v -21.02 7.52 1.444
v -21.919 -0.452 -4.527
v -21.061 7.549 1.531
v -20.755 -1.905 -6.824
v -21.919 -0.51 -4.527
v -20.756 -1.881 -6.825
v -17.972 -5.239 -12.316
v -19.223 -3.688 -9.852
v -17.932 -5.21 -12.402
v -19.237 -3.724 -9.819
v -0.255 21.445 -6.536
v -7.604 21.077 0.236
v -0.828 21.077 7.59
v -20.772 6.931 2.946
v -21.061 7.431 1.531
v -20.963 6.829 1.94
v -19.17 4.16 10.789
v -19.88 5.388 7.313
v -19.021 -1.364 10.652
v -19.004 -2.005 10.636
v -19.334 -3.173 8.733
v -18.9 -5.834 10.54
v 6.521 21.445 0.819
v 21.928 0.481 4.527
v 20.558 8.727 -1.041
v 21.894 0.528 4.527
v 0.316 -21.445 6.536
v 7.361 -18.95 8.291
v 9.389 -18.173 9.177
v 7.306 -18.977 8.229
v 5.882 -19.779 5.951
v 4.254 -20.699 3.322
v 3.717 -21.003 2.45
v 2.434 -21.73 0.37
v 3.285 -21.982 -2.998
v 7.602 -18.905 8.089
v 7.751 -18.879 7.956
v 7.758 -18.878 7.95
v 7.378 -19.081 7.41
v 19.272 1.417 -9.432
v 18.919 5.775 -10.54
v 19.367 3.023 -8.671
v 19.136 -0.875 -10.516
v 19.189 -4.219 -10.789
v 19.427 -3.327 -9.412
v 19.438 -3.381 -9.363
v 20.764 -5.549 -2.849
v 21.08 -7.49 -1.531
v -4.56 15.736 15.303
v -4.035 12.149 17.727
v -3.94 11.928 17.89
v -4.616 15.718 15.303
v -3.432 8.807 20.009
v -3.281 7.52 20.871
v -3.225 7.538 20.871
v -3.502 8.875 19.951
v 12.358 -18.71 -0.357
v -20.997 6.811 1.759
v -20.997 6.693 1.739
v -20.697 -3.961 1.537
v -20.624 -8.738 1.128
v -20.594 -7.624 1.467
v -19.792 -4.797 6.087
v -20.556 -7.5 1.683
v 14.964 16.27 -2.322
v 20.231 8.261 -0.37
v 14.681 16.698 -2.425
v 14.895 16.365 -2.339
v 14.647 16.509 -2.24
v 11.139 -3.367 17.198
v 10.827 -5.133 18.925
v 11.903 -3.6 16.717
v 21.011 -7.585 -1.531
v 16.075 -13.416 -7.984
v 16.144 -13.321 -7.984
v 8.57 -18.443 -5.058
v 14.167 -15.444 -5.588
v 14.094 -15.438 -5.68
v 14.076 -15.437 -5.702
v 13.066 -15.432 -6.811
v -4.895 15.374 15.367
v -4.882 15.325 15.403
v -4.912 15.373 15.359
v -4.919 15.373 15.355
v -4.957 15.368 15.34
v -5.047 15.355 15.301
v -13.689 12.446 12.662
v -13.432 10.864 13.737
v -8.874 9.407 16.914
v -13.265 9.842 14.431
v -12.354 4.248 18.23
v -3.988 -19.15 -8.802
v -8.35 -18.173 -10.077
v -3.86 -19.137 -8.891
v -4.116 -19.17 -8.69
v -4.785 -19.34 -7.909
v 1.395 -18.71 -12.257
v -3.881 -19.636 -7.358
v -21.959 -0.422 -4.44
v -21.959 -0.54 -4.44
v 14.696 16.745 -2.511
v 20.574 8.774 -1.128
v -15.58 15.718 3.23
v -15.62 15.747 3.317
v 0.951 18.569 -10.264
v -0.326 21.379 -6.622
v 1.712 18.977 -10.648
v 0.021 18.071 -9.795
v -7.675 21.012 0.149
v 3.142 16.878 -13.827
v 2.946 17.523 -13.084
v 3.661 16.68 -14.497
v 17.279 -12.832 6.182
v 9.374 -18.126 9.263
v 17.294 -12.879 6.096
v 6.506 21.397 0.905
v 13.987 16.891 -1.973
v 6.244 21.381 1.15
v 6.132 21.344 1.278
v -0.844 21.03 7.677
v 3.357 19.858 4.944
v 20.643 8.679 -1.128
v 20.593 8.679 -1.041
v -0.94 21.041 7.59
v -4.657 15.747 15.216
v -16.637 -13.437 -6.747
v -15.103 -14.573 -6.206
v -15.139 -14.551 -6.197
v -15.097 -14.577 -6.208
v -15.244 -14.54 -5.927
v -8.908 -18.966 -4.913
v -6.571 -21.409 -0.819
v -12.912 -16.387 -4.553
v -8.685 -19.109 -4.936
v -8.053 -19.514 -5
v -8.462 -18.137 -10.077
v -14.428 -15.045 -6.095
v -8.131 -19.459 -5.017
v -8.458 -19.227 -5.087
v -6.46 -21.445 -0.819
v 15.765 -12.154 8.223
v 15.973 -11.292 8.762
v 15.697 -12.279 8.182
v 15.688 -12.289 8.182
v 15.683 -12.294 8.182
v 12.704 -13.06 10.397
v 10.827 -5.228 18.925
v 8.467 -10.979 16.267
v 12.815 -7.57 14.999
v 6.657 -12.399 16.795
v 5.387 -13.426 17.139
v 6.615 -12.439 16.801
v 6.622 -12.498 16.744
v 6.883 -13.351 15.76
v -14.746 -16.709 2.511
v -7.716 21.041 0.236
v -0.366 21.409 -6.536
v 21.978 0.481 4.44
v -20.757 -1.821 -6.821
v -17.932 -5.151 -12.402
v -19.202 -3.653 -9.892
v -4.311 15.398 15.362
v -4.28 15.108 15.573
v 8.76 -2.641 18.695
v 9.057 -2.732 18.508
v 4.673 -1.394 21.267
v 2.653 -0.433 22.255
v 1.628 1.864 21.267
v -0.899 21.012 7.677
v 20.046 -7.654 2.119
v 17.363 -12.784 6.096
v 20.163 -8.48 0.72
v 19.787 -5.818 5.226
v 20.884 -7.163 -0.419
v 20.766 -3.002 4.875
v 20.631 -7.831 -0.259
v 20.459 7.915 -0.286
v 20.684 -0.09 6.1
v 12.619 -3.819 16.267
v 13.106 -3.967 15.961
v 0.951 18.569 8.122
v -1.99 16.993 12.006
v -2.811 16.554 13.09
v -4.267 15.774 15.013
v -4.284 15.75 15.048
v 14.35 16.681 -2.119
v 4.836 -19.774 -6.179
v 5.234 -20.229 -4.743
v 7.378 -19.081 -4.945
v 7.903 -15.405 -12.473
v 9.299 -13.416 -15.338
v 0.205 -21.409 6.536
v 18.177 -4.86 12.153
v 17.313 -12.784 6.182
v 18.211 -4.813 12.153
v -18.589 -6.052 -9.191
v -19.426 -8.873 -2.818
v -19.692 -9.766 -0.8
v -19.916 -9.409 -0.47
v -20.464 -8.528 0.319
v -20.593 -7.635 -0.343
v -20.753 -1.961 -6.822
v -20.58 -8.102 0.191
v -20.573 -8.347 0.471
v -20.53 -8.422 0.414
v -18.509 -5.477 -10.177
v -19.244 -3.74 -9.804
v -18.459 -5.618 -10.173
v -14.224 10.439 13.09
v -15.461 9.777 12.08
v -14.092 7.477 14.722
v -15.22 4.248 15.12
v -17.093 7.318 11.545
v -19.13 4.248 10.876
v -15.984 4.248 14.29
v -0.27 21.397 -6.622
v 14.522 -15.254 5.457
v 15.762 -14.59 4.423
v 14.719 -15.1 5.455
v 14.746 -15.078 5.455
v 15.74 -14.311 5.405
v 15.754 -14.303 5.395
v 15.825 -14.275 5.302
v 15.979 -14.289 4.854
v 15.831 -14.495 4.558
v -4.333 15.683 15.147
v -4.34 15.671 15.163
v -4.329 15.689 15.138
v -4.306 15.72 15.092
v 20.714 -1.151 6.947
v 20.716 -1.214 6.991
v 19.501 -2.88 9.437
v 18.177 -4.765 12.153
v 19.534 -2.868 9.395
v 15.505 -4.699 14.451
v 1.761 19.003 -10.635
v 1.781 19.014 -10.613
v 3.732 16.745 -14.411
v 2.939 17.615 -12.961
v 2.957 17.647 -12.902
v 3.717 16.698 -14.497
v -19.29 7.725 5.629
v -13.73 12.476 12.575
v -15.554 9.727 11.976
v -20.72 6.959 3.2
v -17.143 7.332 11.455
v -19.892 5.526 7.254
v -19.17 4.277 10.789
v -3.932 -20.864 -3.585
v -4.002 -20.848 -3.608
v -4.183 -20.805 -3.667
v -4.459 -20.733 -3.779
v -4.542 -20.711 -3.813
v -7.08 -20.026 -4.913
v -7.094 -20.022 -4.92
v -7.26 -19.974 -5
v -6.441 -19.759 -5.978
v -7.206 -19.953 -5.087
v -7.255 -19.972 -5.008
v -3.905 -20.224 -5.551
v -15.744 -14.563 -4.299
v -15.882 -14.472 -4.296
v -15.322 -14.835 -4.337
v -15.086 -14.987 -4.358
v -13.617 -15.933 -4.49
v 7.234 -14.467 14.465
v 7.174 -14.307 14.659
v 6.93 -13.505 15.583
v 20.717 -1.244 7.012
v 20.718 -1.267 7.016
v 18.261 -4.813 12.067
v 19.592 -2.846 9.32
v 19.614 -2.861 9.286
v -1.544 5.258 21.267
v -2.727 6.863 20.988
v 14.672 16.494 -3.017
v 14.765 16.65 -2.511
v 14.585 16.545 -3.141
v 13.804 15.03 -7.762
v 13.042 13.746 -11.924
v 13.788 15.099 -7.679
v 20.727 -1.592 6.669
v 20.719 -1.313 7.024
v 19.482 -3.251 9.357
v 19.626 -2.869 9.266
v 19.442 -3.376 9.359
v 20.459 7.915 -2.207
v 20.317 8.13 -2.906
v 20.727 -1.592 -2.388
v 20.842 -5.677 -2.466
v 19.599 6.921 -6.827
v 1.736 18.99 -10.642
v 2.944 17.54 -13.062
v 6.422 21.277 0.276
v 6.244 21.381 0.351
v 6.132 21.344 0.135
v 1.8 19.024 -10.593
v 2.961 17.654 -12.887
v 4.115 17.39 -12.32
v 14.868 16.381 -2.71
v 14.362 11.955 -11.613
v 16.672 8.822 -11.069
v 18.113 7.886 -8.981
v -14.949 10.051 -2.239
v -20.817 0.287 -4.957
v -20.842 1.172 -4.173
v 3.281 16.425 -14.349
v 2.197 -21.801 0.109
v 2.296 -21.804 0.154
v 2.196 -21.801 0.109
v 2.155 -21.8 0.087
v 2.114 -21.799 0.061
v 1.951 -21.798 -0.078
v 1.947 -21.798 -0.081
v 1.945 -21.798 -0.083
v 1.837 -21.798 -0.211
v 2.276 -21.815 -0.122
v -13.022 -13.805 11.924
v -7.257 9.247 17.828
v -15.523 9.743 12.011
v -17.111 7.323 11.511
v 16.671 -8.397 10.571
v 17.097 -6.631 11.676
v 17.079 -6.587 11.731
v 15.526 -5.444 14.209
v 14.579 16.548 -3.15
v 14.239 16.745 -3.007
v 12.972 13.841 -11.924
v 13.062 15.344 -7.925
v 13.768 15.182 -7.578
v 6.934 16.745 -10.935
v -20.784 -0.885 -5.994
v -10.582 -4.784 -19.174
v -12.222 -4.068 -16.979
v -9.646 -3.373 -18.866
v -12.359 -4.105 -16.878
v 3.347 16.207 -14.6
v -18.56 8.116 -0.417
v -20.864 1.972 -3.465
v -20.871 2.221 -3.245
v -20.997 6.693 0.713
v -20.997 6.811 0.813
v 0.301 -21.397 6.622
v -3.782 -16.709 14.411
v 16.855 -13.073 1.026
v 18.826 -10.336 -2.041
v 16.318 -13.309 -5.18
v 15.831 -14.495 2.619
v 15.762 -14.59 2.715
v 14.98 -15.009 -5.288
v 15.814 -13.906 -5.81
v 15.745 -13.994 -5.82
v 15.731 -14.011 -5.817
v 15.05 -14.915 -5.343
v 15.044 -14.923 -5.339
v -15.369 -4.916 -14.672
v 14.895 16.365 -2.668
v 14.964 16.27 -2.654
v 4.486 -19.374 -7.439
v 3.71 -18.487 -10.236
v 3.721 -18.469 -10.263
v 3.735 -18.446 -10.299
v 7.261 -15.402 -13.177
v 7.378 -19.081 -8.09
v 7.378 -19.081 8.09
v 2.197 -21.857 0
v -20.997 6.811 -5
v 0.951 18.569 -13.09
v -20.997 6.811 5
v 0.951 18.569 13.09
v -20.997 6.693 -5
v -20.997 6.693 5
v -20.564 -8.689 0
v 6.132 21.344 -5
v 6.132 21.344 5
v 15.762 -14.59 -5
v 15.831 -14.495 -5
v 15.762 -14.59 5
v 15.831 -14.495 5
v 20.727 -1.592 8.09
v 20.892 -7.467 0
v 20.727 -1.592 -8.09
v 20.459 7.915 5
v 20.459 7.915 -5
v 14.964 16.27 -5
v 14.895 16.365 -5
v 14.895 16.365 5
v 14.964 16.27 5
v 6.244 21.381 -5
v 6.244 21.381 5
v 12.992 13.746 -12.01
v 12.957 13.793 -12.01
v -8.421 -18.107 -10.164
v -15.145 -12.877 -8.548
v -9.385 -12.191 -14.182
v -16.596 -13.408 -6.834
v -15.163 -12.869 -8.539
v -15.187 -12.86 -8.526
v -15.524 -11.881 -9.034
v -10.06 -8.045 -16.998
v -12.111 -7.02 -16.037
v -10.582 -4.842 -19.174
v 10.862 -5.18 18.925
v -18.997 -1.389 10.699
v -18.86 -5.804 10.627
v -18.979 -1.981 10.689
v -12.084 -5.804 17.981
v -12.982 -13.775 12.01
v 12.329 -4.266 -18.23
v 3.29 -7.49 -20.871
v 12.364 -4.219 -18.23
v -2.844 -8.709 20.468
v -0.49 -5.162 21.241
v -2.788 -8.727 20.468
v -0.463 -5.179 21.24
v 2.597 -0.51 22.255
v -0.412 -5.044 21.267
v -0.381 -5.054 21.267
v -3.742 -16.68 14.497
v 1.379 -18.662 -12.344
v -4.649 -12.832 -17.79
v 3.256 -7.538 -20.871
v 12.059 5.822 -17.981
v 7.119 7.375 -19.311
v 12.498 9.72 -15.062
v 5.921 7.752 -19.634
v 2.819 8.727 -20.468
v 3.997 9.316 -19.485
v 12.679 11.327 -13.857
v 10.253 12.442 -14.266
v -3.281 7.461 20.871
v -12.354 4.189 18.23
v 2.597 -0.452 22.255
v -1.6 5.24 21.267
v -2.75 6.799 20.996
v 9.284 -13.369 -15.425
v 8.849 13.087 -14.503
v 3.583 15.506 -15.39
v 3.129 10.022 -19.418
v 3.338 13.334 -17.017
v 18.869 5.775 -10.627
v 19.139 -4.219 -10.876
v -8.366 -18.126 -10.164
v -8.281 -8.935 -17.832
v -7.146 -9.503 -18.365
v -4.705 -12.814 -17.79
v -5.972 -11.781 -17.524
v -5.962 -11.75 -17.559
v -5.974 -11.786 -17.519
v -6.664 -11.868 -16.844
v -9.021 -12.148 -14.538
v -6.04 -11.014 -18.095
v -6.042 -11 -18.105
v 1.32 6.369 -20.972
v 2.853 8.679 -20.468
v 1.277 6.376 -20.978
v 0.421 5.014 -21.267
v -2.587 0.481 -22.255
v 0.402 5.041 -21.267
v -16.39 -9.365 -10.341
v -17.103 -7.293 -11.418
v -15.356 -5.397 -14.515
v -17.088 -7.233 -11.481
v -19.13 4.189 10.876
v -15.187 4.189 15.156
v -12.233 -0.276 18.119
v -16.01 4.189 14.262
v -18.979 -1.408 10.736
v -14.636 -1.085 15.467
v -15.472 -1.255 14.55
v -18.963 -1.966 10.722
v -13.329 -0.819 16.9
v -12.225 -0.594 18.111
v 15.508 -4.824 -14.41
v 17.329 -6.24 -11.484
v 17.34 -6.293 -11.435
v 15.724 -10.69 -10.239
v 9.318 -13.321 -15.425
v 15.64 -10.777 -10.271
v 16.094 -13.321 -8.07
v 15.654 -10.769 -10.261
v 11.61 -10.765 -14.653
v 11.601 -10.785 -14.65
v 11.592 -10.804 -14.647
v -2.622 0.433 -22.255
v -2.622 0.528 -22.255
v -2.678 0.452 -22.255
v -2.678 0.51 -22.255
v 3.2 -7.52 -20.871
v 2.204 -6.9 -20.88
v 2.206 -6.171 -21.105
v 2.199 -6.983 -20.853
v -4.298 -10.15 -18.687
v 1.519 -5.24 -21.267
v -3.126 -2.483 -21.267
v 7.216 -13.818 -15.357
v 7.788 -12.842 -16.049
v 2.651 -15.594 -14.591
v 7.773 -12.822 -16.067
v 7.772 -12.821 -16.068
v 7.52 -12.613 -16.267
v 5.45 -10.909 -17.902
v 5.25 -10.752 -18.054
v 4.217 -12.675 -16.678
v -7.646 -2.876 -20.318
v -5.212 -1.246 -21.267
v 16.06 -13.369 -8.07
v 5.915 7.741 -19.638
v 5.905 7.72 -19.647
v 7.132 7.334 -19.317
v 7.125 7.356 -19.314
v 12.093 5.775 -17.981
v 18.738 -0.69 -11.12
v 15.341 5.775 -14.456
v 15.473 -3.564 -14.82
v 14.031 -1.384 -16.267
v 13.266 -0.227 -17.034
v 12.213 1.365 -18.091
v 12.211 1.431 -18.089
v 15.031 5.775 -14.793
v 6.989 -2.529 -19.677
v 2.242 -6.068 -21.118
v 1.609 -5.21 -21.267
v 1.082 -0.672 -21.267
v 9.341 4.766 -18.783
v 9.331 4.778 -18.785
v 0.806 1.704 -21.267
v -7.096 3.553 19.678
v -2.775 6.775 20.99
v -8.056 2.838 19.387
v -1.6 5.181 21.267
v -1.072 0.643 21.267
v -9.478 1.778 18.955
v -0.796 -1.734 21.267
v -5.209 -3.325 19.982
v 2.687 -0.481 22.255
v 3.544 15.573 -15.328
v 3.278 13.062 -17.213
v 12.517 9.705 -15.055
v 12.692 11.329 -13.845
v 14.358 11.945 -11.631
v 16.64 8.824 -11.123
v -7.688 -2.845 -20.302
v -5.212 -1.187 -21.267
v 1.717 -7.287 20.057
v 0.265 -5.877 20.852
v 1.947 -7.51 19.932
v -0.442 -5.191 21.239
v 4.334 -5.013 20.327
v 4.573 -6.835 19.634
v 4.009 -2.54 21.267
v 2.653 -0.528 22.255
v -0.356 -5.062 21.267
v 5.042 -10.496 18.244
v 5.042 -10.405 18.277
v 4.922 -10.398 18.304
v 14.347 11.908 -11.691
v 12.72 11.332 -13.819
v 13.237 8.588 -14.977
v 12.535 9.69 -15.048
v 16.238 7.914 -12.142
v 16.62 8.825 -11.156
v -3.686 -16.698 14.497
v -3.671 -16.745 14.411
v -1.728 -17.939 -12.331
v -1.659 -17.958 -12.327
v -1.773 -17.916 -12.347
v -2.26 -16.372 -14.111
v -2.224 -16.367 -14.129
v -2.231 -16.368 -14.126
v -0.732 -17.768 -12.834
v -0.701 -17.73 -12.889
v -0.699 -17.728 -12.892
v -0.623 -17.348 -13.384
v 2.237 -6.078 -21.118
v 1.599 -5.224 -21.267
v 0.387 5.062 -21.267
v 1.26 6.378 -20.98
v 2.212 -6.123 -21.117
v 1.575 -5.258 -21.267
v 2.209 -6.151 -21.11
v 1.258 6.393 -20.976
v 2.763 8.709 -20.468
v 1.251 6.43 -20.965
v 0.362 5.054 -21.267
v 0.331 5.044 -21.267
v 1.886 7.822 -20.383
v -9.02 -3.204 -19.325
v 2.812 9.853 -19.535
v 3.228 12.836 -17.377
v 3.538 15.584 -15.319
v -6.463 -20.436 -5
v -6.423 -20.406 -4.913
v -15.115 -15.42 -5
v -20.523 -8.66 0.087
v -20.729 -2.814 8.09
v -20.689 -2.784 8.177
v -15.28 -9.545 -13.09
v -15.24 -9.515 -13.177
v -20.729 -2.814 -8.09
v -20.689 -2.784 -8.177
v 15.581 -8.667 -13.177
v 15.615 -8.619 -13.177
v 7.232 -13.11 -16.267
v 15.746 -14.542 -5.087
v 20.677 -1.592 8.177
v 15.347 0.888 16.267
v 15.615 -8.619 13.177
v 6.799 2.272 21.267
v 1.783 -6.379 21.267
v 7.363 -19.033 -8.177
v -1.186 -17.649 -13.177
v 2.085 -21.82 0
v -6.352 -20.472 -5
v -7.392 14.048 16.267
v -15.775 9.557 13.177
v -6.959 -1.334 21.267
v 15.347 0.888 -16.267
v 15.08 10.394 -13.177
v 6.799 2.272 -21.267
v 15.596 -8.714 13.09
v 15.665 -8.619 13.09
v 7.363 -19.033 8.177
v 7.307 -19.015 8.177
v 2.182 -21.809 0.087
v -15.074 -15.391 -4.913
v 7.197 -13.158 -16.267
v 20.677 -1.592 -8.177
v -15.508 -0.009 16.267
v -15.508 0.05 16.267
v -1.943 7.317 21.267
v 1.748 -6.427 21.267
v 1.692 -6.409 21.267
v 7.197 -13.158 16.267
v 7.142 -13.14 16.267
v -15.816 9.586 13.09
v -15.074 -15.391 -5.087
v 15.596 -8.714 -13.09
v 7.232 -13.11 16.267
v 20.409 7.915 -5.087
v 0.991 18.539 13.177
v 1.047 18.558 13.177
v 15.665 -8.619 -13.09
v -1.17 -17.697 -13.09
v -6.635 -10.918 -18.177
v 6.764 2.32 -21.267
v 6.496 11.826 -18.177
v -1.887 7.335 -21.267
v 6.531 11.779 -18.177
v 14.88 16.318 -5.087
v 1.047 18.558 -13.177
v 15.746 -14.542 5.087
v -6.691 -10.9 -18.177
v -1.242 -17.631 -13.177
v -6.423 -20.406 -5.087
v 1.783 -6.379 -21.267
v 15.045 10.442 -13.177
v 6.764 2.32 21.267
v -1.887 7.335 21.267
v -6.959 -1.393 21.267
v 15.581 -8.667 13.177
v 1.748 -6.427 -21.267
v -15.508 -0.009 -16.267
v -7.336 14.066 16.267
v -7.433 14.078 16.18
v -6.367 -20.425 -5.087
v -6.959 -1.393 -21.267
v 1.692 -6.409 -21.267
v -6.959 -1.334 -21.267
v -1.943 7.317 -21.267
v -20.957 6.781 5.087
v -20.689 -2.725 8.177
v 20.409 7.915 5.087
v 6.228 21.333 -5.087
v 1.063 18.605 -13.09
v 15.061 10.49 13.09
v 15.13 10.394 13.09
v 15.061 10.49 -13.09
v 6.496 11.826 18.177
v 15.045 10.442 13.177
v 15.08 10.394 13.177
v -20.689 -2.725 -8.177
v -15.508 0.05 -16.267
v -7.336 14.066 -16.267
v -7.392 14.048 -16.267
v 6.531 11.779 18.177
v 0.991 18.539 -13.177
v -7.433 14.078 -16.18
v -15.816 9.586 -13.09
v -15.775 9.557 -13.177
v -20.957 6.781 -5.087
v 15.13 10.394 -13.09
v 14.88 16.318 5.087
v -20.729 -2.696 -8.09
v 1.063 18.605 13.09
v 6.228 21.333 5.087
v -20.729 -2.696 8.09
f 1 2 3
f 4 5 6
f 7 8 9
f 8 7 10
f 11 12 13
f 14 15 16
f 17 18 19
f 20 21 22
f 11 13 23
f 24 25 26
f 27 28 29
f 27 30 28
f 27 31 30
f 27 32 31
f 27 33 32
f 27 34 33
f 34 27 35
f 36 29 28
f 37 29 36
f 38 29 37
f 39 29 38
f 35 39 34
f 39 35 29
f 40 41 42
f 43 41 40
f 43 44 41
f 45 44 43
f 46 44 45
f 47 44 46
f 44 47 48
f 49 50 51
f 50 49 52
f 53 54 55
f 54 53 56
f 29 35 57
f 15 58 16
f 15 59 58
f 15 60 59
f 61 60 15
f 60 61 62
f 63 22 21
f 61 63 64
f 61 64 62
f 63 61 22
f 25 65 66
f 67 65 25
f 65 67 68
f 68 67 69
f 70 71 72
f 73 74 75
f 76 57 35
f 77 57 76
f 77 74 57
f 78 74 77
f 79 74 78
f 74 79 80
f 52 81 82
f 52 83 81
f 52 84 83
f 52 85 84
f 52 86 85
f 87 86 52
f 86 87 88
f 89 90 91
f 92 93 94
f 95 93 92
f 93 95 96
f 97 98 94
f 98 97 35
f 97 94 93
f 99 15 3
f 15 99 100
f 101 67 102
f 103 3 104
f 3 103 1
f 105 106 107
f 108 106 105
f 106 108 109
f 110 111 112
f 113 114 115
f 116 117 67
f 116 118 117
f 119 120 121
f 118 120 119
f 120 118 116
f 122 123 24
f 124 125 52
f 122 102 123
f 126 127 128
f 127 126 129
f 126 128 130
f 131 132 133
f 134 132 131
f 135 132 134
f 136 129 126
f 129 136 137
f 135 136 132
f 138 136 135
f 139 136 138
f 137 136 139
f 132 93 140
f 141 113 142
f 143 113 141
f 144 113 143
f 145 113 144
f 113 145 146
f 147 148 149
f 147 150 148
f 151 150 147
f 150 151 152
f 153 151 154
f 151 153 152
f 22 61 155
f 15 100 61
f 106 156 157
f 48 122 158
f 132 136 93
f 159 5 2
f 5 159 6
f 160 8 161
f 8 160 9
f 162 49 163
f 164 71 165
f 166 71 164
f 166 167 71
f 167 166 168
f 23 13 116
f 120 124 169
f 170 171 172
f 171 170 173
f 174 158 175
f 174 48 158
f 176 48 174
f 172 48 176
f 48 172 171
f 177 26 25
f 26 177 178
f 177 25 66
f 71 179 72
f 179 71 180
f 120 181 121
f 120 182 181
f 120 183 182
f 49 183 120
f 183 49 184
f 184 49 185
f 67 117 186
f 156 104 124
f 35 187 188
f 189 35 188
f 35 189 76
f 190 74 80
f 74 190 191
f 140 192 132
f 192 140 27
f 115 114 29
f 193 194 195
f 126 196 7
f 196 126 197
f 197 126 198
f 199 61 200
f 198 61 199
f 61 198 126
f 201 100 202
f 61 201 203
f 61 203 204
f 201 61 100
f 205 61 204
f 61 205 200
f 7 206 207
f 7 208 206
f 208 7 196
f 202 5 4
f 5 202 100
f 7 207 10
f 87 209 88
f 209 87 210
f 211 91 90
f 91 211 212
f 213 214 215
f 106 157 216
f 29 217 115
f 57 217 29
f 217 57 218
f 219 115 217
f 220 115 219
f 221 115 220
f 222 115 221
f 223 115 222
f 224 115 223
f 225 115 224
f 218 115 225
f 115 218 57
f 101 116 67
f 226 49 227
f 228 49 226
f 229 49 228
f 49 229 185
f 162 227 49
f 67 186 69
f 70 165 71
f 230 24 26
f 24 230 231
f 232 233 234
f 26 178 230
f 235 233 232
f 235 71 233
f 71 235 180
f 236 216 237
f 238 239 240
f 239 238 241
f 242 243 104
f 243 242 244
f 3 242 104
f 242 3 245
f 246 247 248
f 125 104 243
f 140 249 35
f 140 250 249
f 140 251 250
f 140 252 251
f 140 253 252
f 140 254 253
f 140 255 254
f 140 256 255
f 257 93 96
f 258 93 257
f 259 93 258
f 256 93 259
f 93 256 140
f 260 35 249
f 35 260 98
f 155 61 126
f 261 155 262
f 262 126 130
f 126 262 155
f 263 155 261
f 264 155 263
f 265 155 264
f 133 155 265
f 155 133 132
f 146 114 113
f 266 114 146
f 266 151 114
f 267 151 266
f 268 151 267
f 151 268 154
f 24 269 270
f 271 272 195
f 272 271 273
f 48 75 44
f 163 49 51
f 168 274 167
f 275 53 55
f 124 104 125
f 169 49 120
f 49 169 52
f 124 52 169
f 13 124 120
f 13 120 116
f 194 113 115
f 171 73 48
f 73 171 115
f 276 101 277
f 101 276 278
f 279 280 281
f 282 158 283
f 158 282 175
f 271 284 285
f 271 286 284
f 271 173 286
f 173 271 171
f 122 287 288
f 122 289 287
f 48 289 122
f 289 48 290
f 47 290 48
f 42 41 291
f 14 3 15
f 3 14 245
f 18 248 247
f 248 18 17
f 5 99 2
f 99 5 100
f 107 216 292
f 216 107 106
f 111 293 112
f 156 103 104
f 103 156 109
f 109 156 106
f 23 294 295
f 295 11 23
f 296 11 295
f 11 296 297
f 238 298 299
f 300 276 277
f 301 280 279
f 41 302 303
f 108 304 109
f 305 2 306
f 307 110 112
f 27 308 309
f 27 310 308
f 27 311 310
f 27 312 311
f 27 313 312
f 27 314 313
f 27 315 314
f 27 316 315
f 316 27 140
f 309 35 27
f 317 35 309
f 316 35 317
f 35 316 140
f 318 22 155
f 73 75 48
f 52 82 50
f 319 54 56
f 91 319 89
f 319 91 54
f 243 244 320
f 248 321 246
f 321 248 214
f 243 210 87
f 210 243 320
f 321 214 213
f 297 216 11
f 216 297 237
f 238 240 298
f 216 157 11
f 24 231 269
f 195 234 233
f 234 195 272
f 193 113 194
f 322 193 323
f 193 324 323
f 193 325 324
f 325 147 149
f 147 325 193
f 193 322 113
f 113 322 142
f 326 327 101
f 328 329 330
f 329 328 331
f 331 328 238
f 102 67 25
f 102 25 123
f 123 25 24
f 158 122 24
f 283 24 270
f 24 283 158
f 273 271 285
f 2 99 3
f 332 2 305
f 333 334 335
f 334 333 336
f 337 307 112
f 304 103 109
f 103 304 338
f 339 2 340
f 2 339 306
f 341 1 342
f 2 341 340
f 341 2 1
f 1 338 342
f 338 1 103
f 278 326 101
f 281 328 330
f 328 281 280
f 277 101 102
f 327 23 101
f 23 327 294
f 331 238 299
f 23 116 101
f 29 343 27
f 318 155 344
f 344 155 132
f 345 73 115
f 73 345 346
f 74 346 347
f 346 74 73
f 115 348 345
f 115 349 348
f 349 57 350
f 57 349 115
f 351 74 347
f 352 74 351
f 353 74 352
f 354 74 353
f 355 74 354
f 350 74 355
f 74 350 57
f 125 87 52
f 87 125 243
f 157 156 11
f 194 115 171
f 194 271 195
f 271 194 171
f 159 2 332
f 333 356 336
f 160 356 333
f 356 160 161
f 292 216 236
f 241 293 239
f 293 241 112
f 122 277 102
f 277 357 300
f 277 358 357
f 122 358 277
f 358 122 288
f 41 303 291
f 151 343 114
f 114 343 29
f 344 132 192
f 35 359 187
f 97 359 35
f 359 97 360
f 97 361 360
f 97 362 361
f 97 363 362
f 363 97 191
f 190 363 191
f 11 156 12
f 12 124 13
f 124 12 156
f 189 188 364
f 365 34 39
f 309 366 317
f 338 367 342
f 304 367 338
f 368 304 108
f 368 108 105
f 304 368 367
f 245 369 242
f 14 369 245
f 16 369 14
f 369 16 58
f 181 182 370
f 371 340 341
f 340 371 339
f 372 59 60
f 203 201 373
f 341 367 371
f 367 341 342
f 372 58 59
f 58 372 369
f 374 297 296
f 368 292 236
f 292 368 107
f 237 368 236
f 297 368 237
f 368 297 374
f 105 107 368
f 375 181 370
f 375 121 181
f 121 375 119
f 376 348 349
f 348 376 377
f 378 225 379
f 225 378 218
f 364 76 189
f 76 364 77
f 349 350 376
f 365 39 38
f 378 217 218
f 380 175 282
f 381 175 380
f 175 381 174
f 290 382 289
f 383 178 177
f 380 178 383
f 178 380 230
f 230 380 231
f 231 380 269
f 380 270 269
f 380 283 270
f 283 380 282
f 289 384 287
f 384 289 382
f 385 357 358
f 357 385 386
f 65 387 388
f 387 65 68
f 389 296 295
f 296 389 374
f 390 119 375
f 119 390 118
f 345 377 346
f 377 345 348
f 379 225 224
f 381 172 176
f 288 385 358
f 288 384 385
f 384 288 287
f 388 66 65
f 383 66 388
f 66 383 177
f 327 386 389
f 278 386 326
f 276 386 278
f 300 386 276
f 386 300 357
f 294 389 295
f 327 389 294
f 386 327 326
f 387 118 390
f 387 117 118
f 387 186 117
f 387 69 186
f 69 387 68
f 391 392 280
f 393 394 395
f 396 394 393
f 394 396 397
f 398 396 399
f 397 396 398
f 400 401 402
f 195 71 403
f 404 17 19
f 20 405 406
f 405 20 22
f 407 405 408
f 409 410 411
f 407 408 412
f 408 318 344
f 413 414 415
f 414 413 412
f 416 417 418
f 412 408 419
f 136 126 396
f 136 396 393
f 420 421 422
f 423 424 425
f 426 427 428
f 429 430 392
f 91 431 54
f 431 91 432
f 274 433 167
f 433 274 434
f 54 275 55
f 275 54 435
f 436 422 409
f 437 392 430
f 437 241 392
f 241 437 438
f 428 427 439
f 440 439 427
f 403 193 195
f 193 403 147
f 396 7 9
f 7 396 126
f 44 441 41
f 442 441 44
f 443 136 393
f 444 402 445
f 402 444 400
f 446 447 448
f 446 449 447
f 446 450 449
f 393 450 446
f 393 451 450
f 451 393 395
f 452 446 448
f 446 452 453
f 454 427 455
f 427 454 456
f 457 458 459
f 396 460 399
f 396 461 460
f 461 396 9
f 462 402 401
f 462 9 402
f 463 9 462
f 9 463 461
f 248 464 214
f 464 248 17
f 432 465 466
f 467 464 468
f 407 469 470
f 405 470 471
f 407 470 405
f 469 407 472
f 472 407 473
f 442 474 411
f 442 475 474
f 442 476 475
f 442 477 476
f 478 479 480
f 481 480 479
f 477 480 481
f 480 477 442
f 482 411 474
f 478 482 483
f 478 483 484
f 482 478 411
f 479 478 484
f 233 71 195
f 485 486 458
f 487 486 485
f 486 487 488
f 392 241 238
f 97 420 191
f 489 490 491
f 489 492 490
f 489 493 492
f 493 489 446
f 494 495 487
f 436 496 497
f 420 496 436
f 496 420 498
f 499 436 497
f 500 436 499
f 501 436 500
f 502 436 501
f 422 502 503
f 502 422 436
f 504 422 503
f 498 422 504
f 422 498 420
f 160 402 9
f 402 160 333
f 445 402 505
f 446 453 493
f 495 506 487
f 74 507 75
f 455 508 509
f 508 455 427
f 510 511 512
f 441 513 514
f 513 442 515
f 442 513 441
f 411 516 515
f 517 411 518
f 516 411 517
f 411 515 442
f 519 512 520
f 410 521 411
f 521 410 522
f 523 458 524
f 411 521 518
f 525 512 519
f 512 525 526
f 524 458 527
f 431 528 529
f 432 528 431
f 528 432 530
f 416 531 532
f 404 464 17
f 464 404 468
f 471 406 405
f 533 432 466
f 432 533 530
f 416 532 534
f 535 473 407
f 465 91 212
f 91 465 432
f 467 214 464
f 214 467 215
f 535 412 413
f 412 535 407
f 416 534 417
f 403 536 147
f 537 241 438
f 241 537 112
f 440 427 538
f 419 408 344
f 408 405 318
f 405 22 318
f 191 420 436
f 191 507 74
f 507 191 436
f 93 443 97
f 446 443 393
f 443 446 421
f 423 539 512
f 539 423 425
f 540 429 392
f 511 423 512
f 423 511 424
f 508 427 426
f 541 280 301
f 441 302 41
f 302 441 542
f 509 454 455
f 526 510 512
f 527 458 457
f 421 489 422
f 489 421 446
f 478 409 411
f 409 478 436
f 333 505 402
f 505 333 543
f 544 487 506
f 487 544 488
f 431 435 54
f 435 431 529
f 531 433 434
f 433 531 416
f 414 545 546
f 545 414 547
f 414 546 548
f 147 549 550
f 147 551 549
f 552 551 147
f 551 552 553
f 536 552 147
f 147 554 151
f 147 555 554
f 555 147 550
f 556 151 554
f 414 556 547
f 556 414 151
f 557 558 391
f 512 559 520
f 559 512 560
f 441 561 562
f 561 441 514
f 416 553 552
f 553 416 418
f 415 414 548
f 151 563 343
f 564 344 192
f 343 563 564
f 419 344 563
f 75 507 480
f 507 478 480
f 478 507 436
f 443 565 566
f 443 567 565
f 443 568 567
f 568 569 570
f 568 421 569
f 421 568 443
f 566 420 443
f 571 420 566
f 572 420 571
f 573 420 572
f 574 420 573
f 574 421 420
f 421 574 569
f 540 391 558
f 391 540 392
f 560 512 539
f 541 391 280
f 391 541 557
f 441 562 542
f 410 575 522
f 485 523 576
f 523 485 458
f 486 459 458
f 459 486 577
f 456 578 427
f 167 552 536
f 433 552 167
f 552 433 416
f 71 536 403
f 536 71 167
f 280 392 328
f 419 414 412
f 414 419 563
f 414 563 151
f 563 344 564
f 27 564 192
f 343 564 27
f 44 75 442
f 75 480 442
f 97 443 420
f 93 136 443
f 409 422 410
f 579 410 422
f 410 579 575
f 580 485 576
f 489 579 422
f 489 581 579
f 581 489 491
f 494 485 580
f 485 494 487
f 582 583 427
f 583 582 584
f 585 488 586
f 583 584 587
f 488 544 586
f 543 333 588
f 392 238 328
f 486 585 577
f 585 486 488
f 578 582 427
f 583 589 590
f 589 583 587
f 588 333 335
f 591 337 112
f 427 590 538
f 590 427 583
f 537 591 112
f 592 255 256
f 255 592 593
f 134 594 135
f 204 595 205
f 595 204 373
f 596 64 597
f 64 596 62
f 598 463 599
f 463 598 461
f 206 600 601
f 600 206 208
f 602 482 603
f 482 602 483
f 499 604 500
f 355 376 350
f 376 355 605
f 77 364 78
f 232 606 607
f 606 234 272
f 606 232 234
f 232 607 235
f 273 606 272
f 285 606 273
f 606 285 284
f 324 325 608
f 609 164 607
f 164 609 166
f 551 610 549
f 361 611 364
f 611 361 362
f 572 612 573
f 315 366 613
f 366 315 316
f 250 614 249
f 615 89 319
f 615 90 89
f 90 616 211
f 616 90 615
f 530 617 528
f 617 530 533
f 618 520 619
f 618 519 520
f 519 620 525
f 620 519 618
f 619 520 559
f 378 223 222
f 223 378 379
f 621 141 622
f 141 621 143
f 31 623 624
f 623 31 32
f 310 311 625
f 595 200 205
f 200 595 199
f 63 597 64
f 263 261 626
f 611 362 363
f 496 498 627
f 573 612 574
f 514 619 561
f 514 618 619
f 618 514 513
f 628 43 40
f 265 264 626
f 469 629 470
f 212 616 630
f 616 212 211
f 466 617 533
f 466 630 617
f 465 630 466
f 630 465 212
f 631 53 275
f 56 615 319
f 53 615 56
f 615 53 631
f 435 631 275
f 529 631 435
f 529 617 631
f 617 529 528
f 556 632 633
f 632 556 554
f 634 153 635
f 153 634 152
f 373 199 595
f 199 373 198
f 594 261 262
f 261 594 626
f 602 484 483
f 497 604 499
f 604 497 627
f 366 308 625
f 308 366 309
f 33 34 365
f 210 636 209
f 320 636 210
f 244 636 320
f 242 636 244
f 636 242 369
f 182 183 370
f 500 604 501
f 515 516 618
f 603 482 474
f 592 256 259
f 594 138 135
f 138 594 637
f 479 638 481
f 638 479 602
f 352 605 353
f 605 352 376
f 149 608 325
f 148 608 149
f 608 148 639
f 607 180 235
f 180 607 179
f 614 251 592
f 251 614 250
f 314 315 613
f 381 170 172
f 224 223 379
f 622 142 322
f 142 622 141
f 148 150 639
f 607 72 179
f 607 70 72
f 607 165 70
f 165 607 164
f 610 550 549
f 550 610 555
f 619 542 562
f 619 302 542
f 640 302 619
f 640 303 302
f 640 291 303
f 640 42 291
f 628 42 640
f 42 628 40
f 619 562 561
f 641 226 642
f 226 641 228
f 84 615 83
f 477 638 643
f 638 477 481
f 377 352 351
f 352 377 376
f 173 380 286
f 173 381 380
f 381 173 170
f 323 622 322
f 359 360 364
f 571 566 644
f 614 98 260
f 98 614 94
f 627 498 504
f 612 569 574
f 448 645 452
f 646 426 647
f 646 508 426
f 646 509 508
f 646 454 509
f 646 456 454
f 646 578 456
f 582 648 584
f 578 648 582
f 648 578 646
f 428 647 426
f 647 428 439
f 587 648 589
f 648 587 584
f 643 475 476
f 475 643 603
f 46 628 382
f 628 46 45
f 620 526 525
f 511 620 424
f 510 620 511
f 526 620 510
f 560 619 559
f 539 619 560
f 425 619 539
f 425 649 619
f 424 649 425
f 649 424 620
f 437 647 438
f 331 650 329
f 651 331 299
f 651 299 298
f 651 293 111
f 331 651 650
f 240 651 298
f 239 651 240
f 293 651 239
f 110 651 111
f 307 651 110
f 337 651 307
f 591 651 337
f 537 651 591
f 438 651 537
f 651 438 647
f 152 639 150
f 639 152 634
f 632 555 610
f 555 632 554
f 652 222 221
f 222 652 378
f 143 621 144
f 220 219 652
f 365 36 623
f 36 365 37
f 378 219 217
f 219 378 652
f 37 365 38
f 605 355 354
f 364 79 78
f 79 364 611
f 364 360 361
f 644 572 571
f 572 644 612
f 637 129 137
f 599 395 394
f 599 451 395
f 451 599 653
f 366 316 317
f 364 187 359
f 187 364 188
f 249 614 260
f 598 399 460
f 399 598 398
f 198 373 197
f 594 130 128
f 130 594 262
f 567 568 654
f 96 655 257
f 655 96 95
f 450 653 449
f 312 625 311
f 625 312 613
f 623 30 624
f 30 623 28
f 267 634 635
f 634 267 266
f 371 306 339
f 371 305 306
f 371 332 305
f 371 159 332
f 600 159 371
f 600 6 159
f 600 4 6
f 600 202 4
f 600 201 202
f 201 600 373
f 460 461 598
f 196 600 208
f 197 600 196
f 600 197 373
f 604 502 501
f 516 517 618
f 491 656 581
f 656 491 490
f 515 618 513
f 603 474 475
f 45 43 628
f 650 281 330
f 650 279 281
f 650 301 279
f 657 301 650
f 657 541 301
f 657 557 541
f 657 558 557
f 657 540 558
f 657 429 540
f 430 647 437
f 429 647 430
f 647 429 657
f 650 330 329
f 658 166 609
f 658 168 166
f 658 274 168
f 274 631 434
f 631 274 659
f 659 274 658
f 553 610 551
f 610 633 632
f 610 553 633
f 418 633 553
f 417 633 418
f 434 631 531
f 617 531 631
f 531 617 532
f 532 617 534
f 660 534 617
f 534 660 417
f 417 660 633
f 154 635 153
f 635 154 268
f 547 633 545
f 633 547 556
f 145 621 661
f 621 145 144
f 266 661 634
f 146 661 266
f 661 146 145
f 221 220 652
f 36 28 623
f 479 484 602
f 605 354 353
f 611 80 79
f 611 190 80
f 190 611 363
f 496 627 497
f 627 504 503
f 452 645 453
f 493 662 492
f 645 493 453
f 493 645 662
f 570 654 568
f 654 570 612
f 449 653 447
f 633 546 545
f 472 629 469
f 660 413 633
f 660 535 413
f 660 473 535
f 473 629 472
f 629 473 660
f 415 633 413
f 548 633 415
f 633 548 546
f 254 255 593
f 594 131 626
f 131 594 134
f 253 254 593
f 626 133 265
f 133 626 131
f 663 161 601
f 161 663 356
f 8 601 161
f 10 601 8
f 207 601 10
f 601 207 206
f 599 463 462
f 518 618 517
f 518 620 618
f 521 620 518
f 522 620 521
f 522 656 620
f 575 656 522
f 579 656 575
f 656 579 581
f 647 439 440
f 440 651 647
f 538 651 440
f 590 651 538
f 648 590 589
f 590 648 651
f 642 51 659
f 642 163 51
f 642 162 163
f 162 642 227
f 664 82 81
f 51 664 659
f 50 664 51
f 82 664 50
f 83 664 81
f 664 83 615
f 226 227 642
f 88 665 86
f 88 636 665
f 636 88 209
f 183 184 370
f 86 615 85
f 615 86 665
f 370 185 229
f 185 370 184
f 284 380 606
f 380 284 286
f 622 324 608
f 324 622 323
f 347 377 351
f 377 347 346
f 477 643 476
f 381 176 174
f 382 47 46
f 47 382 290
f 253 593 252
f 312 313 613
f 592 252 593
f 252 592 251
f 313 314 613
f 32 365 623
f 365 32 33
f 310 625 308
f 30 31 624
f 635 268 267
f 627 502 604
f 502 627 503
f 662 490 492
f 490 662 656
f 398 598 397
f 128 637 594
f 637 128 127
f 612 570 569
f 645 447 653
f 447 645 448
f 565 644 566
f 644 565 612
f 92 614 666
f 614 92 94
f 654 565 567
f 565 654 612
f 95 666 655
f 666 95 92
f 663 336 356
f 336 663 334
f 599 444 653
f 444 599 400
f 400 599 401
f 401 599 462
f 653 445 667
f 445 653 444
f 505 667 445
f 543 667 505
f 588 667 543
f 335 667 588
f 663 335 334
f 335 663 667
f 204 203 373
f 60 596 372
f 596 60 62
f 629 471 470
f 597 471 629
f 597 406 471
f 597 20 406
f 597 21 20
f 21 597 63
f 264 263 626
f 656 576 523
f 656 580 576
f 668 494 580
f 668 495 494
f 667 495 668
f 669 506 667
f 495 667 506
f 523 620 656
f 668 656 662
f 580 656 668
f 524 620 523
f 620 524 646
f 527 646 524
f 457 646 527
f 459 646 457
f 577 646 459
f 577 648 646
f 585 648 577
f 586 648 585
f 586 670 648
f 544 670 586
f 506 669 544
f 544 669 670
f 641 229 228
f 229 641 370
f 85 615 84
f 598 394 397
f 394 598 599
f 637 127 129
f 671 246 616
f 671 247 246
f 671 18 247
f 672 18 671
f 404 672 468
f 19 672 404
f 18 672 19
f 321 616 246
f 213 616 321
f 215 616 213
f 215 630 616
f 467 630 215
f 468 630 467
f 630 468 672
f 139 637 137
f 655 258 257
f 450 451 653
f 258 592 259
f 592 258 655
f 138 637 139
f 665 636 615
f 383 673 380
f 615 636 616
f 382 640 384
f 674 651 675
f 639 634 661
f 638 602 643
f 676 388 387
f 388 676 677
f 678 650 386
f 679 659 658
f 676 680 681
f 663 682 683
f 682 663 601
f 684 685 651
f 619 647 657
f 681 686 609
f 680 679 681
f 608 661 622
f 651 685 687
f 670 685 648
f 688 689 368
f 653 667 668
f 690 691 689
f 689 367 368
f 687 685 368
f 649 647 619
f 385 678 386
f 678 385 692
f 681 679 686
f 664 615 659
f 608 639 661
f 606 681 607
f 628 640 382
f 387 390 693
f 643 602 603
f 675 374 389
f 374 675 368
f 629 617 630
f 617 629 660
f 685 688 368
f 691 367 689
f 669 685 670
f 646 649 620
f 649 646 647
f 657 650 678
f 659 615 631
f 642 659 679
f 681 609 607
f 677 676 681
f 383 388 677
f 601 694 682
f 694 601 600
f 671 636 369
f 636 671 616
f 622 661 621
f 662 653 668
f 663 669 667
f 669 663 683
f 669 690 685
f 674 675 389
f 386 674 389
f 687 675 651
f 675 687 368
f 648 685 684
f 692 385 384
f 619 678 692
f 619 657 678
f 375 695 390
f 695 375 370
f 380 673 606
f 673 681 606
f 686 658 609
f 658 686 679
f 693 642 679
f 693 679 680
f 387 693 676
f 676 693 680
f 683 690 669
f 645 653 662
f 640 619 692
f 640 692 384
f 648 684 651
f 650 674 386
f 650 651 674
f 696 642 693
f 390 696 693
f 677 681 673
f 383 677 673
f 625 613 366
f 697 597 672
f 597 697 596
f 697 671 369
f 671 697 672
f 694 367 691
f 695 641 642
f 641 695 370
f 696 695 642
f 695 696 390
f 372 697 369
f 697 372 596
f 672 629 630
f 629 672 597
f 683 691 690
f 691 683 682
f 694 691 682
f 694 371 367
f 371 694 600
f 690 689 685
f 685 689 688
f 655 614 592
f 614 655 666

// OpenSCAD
// Auto-generated OpenSCAD file

    inner_points = 10*[[1.529747169709951, 0.0887684815985697, 1.6180339887495454], [-0.6650403250001585, -1.087029682257868, -1.8090169943750285], [0.6748581958379799, 0.22720562383973383, 2.1180339887497732], [-1.5199292988721298, -0.9485925400167037, -1.3090169943748005], [1.502961023190905, 1.0394477122238417, 1.3090169943748005], [-0.6918264715192047, -0.13635045163259588, -2.1180339887497732], [0.6480720493189337, 1.1778848544650058, 1.8090169943750285], [-1.5467154453911758, 0.0020866906085682327, -1.6180339887495454], [0.7347538403093706, -1.8985777606351613, 0.8090169943743729], [0.21663479539132455, -2.176146055124717, -5.111466805374221e-13], [0.6212859027994219, 2.128564085090691, -0.49999999999971656], [0.10316685788137583, 1.8509957906011352, -1.3090169943746006], [2.0626732322522554, -0.15918577764171576, 0.8090169943744226], [1.5565333162282435, -0.8619107490260339, -1.309016994375499], [-1.5467154453904224, 0.002086690607900017, 1.618033988750244], [-2.0648344903084683, -0.27548160388165555, 0.8090169943753601], [2.035887085733209, 0.7914934529835562, 0.4999999999996777], [1.5297471697091976, 0.08876848159923792, -1.618033988750244], [-1.5735015919094684, 0.9527659212331719, 1.309016994375499], [-2.0916206368275145, 0.6751976267436165, 0.5000000000006152], [2.0626732322518784, -0.15918577764138167, -0.809016994375472], [0.1732938998954964, -0.6379147475740927, -2.1180339887500783], [-0.1902621755767213, 0.7287699197812307, 2.1180339887500783], [-2.0648344903088454, -0.2754816038813214, -0.8090169943745347], [0.7181990913331984, -1.3110256837103498, 1.6180339887494455], [-0.6382541784808796, -2.037708912883346, -0.5000000000002833], [0.6212859027996548, 2.128564085090484, 0.5000000000002833], [-0.7351673670144232, 1.4018808559174876, -1.6180339887494455], [1.5730880652047925, -1.4494628259511797, -0.500000000000677], [1.5029610231902952, 1.0394477122243824, -1.3090169943750942], [1.5565333162288535, -0.8619107490265745, 1.3090169943743954], [-0.12013513356321057, -1.7601406183934567, -1.309016994375294], [0.1732938998964831, -0.6379147475749672, 2.118033988749711], [-1.5033745498955808, -1.5361446169418493, -0.49999999999997824], [1.486406274214356, 1.6269997891489871, 0.49999999999997824], [-0.190262175577708, 0.7287699197821053, -2.118033988749711], [0.10316685788198571, 1.8509957906005945, 1.309016994375294], [-1.5735015919100783, 0.9527659212337125, -1.3090169943743954], [1.5730880652050256, -1.4494628259513862, 0.49999999999932293], [0.7347538403089937, -1.8985777606348273, -0.8090169943755219], [1.486406274214123, 1.6269997891491939, -0.5000000000000218], [0.6480720493180911, 1.1778848544657528, -1.8090169943748664], [2.079227981228428, -0.7467378545665272, -6.49896803039951e-13], [0.7181990913324445, -1.3110256837096819, -1.6180339887503443], [-0.6918264715182181, -0.13635045163347048, 2.1180339887500166], [-2.0482797413322964, -0.8630336808064671, 2.875200078022999e-13], [2.0358870857329765, 0.7914934529837627, -0.5000000000003222], [0.6748581958369932, 0.22720562384060844, -2.1180339887500166], [-0.7351673670136694, 1.4018808559168197, 1.6180339887503443], [-2.0916206368277477, 0.6751976267438229, -0.4999999999993848]];

    outer_points = 10*[[1.9089405079323911, -0.4218501272152671, -1.0789145401017997], [-1.2043326607979576, -0.577474804500691, 1.7894618380401386], [1.8819218900924022, 0.577474804500691, -1.054021265088006], [-1.2313512786379466, 0.4218501272152671, 1.8143551130539322], [1.2313512786379466, -0.4218501272152671, -1.8143551130539322], [-1.8819218900924022, -0.577474804500691, 1.054021265088006], [1.2043326607979576, 0.577474804500691, -1.7894618380401386], [-1.9089405079323911, 0.4218501272152671, 1.0789145401017997], [1.8161383771497412, -0.48129346445006527, 1.2066755875633466], [1.0811942768032063, -0.5180314672658928, 1.883807397859486], [-1.0541756589632172, -0.48129346445006527, -1.9087006728732798], [-1.789119759309752, -0.5180314672658928, -1.2315688625771404], [1.604429700784257, -1.3321032531169081, -0.7983572106372436], [0.028548915388096174, -2.1349731725874808, 0.6535613890536225], [0.6490403139063483, 2.1349731725874808, 0.08187918389851007], [-0.0859037864401867, 2.0982351697716535, 0.7590109941946495], [0.9268404714898124, -1.3321032531169081, -1.5337977835893761], [-0.6490403139063483, -2.1349731725874808, -0.08187918389851007], [-0.028548915388096174, 2.1349731725874808, -0.6535613890536225], [-0.7634930157346311, 2.0982351697716535, 0.02357042124251696], [0.3254392898648874, -2.188664775803015, -0.2998395325355988], [-1.2941585375254203, -1.3745929899519995, 1.192357232218884], [1.2941585375254203, 1.3745929899519995, -1.192357232218884], [-1.3648941973595563, 1.2416736470855463, 1.2575286722962942], [2.1878247482682935, 0.04809067002531284, 0.4440474477137366], [0.26371611372985215, -0.04809067002531284, 2.2168015419327753], [-0.26371611372985215, 0.04809067002531284, -2.2168015419327753], [-2.1878247482682935, -0.04809067002531284, -0.4440474477137366], [0.9358529551889134, -1.807795784376752, 0.9176718508015878], [-0.8380986775147881, -1.807795784376752, -1.0077365658927917], [2.097998871540831, -0.7490275154259958, -0.1530571581075182], [-0.28033019684298266, -0.8679141898955922, 2.038187409738281], [2.0542818295466843, 0.8679141898955922, -0.11277899304390138], [-0.3240472388371295, 0.7490275154259958, 2.0784655748018976], [0.3240472388371295, -0.7490275154259958, -2.0784655748018976], [-2.0542818295466843, -0.8679141898955922, 0.11277899304390138], [0.28033019684298266, 0.8679141898955922, -2.038187409738281], [-2.097998871540831, 0.7490275154259958, 0.1530571581075182], [1.7263125004222784, -1.2784116499013738, 0.609570981742092], [0.5371479662303715, -1.337854987136172, 1.7051932656649915], [-0.46641230639623543, -1.2784116499013738, -1.770364705742402], [-1.6555768405881424, -1.337854987136172, -0.6747424218195024], [1.2327433296657047, -1.8614873875922862, -0.03572907078763354], [-0.37015607357044544, -1.6650323753469007, 1.441082803917026], [1.4665184769797024, 1.6650323753469007, -0.2511149601747792], [-0.4575901575587392, 1.5688510352962752, 1.5216391340442594], [0.1363809262564476, -1.8614873875922862, -1.2256969145298804], [-1.4665184769797024, -1.6650323753469007, 0.2511149601747792], [0.37015607357044544, 1.6650323753469007, -1.441082803917026], [-1.5539525609679963, 1.5688510352962752, 0.3316712903020125]];

    // Convex hull for inner set (I)
    module inner_hull() {
        hull() {
            for (p = inner_points) {
                translate(p) sphere(r=0.1);
            }
        }
    }

    // Convex hull for outer set (O) minus inner hull (O \ I)
    module outer_minus_inner() {
        difference() {
            hull() {
                for (p = outer_points) {
                    translate(p) sphere(r=0.1);
                }
            }
            inner_hull(); // Subtract inner hull
        }
    }

    // Convex hull for outer set (O) minus all translated inner hulls
    module outer_minus_AllTranslationInner() {
        difference() {
            hull() {
                for (p = outer_points) {
                    translate(p) sphere(r=0.1);
                }
            }
            hull() {
                translate([0,0,50]) inner_hull();
                translate([0,0,-50]) inner_hull();
            }; // Subtract translated inner hulls
        }
    }

    // Difference between outer_minus_inner and outer_minus_AllTranslationInner
    module outer_minus_inner_diff() {
        difference() {
            // Outer minus inner
            difference() {
                hull() {
                    for (p = outer_points) {
                        translate(p) sphere(r=0.1);
                    }
                }
                inner_hull();
            }

            // Subtract Outer minus AllTranslationInner
            difference() {
                hull() {
                    for (p = outer_points) {
                        translate(p) sphere(r=0.1);
                    }
                }
                hull() {
                    translate([0,0,50]) inner_hull();
                    translate([0,0,-50]) inner_hull();
                };
            }
        }
    }

    // Rendering all with colors applied
    color([1, 0, 0, 0.5]) inner_hull(); // Transparent red
    color([0, 1, 0, 1]) outer_minus_AllTranslationInner(); // Opaque green
    color([1, 1, 0, 1]) outer_minus_inner_diff(); // Opaque yellow
    
